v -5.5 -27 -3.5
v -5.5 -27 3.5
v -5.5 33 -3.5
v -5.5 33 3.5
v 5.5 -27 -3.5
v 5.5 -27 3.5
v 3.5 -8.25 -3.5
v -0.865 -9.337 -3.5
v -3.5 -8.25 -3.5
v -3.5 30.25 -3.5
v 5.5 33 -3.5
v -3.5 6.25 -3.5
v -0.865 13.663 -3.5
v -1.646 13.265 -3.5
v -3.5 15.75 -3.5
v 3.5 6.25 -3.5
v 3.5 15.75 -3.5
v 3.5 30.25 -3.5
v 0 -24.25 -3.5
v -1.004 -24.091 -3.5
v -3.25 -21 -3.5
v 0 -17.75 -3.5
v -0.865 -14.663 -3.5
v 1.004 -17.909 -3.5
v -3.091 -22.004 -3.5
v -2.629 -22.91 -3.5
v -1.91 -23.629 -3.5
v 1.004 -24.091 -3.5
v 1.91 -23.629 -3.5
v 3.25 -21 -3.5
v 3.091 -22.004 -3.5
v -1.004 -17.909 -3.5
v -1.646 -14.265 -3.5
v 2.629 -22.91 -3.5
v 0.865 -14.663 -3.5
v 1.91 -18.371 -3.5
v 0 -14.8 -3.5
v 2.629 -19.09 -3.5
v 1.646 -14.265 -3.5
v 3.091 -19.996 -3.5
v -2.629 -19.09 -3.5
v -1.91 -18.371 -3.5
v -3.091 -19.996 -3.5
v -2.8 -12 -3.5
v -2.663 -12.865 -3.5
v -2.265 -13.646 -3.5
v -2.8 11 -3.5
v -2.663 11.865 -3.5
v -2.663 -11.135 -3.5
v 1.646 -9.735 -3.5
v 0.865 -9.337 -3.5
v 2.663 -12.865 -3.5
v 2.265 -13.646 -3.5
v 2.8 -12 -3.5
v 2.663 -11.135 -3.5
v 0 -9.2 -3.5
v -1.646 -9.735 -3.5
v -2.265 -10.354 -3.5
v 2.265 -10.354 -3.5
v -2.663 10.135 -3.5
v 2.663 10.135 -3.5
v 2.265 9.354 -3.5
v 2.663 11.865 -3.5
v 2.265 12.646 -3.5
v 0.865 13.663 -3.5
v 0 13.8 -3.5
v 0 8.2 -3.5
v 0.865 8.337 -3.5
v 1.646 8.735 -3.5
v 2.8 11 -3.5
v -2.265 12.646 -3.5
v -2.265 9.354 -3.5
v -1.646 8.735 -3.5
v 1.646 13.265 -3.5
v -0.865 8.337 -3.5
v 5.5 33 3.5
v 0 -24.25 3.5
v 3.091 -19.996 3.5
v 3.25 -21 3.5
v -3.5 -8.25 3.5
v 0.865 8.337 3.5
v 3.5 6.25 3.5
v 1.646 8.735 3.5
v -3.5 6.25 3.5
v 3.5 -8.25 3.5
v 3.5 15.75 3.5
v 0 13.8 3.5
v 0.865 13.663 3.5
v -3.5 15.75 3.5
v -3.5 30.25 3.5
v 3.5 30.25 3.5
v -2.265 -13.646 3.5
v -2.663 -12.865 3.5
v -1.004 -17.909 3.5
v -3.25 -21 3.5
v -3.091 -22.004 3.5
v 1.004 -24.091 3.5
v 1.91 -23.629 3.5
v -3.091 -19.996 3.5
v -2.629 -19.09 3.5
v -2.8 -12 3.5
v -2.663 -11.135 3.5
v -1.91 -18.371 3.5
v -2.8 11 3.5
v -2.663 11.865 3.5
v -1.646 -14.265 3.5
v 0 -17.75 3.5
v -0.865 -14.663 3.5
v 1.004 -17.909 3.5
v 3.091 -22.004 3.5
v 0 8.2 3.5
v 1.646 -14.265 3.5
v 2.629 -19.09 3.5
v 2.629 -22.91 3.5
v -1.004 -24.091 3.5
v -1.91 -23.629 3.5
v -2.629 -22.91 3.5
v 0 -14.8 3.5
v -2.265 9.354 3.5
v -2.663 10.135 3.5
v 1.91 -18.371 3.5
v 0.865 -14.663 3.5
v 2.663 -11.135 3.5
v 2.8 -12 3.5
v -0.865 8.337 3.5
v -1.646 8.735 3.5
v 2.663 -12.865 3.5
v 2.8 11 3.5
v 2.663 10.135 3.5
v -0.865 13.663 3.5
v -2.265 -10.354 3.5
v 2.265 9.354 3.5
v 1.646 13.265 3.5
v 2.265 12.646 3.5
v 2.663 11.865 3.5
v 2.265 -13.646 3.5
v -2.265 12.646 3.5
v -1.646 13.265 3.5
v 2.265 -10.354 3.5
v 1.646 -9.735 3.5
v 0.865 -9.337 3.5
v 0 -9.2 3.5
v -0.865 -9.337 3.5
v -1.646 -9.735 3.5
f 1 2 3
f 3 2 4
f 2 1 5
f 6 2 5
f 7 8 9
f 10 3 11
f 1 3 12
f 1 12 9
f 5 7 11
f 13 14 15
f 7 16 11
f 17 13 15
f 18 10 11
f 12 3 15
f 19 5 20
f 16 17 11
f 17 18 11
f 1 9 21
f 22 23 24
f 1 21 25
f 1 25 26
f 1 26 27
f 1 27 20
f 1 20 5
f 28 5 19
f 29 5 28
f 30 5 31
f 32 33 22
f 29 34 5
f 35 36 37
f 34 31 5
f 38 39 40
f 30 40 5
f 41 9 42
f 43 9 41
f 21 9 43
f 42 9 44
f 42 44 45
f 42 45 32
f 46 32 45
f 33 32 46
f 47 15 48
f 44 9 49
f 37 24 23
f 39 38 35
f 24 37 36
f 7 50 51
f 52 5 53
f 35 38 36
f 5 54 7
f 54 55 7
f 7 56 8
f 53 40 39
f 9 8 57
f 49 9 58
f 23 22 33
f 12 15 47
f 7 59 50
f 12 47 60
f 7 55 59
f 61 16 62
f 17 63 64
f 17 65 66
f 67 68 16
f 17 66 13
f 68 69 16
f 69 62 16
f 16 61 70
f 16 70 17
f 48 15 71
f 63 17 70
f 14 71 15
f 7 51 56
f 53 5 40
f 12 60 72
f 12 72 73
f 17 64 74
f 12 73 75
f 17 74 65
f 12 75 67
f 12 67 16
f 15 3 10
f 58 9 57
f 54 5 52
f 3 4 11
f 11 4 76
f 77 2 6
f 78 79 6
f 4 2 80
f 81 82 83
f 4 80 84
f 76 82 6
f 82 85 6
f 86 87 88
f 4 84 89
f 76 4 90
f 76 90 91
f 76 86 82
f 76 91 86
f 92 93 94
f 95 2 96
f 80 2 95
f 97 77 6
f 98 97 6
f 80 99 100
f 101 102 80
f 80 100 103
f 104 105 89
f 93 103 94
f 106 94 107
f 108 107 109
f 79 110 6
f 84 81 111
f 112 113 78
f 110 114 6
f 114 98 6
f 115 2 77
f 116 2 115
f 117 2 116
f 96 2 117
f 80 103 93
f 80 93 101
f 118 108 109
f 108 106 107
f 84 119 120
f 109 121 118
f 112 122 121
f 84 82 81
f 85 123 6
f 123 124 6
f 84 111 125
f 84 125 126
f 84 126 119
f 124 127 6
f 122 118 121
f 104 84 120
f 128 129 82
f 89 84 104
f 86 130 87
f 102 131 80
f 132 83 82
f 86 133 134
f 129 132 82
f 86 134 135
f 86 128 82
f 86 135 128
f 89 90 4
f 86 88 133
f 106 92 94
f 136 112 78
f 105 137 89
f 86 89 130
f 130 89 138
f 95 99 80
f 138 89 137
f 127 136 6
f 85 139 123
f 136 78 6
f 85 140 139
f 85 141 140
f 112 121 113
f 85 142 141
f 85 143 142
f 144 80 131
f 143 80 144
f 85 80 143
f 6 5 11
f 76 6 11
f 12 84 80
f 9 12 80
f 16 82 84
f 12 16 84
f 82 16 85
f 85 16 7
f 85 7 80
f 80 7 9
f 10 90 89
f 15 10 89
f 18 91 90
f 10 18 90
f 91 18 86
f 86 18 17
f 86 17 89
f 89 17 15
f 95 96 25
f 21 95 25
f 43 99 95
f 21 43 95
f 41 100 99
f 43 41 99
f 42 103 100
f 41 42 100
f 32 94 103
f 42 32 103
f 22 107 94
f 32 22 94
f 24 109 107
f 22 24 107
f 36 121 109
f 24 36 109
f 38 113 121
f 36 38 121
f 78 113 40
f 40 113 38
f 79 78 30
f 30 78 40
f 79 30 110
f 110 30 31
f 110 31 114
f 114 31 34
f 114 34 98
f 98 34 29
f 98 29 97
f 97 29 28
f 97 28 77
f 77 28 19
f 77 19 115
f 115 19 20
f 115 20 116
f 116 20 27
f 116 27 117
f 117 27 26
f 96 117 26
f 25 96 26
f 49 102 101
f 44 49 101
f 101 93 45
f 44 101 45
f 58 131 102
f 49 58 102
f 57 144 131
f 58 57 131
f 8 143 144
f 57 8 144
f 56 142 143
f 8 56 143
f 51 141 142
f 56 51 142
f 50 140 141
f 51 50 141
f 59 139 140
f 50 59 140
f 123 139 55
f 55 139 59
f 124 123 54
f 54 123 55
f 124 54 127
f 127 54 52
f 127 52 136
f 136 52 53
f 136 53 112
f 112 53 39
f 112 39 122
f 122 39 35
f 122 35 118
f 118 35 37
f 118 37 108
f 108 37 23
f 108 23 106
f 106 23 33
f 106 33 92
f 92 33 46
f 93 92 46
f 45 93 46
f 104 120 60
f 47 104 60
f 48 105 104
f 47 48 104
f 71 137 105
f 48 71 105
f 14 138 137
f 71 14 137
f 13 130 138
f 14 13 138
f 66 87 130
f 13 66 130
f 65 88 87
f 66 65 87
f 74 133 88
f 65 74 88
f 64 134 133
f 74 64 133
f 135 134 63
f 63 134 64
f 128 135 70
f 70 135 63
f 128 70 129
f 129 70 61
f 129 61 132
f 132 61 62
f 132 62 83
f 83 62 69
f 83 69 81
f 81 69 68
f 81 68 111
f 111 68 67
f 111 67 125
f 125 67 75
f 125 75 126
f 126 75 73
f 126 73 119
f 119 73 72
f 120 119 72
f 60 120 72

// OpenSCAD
jack_diameter = 6.5;

difference() {
	translate([0, 3, 0])
		cube([11, 60, 7], center=true);

	// Screw holes
	translate([0, 11, 0])
		cylinder(r=2.8, h=8, center=true, $fn=20);
	translate([0, -12, 0])
		cylinder(r=2.8, h=8, center=true, $fn=20);

	translate([0, -21, 0])
		cylinder(r=jack_diameter/2, h=8, center=true, $fn=20);

	translate([0, -1, 0])
		cube([7, 14.5, 8], center=true);

	translate([0, 23, 0])
		cube([7, 14.5, 8], center=true);
}
